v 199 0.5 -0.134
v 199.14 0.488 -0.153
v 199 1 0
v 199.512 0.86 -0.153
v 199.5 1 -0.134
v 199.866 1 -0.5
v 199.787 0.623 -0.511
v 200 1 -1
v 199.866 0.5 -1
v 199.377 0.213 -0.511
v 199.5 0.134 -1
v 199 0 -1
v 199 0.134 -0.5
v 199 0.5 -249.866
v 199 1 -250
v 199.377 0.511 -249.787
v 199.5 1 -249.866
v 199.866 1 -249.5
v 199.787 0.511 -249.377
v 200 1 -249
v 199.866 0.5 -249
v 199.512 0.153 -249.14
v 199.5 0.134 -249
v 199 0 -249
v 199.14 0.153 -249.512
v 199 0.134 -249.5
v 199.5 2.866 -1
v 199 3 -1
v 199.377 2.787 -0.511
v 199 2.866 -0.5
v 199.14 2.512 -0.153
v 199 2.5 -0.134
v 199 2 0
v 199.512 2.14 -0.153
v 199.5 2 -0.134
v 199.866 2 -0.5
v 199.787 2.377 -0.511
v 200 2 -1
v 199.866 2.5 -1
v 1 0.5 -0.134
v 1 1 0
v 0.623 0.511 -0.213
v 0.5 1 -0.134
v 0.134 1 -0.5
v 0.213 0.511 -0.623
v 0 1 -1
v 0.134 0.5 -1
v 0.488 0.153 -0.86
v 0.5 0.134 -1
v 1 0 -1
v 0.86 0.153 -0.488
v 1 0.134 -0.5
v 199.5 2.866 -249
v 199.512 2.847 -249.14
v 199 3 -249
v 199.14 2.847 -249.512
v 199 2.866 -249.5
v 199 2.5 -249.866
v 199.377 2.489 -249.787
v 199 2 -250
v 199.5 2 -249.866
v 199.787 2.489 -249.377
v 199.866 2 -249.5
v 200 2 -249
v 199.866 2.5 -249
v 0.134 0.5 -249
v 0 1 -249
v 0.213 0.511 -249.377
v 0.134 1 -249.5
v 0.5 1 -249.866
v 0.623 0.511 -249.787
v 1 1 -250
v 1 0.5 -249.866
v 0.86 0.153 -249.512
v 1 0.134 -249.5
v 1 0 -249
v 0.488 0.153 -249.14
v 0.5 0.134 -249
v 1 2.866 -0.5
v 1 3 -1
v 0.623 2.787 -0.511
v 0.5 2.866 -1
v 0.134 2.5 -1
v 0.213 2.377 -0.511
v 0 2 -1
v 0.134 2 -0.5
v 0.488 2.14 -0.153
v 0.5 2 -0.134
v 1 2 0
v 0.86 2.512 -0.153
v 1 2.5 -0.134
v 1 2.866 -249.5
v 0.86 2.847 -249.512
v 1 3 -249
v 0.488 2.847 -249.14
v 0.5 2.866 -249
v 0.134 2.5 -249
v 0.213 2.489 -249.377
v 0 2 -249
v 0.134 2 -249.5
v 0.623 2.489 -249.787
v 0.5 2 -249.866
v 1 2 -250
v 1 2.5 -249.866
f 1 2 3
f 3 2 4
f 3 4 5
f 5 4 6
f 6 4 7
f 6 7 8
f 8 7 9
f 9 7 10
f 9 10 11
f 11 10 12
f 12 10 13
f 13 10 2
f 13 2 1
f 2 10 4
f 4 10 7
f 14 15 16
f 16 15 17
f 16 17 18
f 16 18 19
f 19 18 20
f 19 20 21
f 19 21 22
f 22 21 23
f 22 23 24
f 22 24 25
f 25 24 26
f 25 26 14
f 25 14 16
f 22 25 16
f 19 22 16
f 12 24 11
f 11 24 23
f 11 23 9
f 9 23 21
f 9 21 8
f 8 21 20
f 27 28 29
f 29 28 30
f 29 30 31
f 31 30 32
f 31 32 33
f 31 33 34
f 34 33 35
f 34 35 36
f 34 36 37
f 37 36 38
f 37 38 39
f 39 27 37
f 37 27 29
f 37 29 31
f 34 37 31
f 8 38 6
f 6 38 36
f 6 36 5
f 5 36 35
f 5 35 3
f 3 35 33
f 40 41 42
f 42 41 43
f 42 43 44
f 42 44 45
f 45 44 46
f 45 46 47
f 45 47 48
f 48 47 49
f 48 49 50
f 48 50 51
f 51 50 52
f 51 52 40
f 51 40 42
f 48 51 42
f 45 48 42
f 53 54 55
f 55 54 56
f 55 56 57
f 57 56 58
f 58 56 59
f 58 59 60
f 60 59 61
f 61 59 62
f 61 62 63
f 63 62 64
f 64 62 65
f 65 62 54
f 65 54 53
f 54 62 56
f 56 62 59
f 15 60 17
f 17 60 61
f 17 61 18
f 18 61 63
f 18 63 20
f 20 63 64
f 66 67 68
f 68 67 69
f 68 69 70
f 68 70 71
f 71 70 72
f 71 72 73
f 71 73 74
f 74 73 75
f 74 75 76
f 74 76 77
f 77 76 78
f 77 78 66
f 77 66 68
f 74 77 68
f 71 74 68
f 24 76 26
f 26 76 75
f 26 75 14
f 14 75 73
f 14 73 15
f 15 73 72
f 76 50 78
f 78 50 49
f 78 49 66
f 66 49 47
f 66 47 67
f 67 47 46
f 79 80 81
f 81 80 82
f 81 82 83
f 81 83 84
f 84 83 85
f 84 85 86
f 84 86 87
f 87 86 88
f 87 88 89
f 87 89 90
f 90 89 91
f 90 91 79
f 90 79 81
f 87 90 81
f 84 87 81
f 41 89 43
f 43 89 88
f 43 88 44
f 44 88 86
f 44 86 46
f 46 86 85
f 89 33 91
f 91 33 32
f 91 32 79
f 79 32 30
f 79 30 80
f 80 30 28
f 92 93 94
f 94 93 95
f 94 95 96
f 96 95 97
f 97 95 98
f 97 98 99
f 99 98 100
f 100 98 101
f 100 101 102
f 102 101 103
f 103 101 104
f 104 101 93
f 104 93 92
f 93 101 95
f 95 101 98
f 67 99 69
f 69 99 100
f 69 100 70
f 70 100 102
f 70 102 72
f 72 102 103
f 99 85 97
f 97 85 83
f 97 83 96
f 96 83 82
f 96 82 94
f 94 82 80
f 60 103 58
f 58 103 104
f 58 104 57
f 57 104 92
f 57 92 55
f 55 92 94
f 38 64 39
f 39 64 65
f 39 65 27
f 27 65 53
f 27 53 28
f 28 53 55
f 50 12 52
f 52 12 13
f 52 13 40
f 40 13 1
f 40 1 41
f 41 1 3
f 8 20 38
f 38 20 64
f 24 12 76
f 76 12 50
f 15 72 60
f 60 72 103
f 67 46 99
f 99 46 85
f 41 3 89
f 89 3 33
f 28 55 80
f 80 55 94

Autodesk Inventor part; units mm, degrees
ref_plane "YZ Plane" through (0, 0, 0) normal (1, 0, 0) x (0, 1, 0)
ref_plane "XZ Plane" through (0, 0, 0) normal (0, 1, 0) x (-1, 0, 0)
ref_plane "XY Plane" through (0, 0, 0) normal (0, 0, 1) x (1, 0, 0)
sketch "page_lines" plane through (0, 0, 0) normal (0, 1, 0) x (-1, 0, 0)
  line L0 (0, 0) -> (-200, 0)
  line L1 (-200, 0) -> (-200, -250)
  line L2 (-200, -250) -> (0, -250)
  line L3 (0, -250) -> (0, 0)
  circle A0 centre (-65, -60) radius 6
  circle A1 centre (-125, -80) radius 6
  circle A2 centre (-65, -60) radius 12.5
  circle A3 centre (-65, -60) radius 8.5
  circle A4 centre (-125, -80) radius 8.5
  circle A5 centre (-125, -80) radius 12.5
  circle A6 centre (-175, -125) radius 3
  line L4 (-175, -125) -> (-175, -209)
  line L5 (-175, -125) -> (-91, -125) construction
  circle A7 centre (-175, -139) radius 3
  circle A8 centre (-175, -153) radius 3
  circle A9 centre (-175, -167) radius 3
  circle A10 centre (-175, -181) radius 3
  circle A11 centre (-175, -195) radius 3
  circle A12 centre (-175, -209) radius 3
  circle A13 centre (-95, -185) radius 2.5
  circle A14 centre (-95, -185) radius 5
  point P0 (-200, -125)
  dimension "d0" = 200
  dimension "d1" = 250
  dimension "d2" = 12
  dimension "d3" = 12
  dimension "d4" = 25
  dimension "d5" = 17
  dimension "d6" = 17
  dimension "d7" = 25
  dimension "d8" = 75
  dimension "d9" = 80
  dimension "d10" = 65
  dimension "d11" = 60
  dimension "d12" = 6
  dimension "d13" = 84
  dimension "d14" = 90
  dimension "d15" = 25
  dimension "d16" = 125
  dimension "d19" = 14
  dimension "d24" = 5
  dimension "d25" = 10
  dimension "d26" = 65
  dimension "d27" = 95
extrude "cover" add sketch "page_lines" along normal blind 3 contours L3 L2 L1 L0 | A0 | A1 | A2 | A3 | A4 | A5 | A6 | A12 | A11 L4 | L4 A11 | A10 L4 | L4 A10 | A9 L4 | L4 A9 | A8 L4 | L4 A8 | A7 L4 | L4 A7 | A13 | A14
fillet "Fillet1" radius 1 12 edges at (0, 3, -125) (0, 0, -125) (0, 1.5, 0) (100, 0, 0) (100, 3, 0) (0, 1.5, -250) (100, 3, -250) (100, 0, -250) (200, 1.5, -250) (200, 0, -125) (200, 3, -125) (200, 1.5, 0)
properties part number "pages_cover"
